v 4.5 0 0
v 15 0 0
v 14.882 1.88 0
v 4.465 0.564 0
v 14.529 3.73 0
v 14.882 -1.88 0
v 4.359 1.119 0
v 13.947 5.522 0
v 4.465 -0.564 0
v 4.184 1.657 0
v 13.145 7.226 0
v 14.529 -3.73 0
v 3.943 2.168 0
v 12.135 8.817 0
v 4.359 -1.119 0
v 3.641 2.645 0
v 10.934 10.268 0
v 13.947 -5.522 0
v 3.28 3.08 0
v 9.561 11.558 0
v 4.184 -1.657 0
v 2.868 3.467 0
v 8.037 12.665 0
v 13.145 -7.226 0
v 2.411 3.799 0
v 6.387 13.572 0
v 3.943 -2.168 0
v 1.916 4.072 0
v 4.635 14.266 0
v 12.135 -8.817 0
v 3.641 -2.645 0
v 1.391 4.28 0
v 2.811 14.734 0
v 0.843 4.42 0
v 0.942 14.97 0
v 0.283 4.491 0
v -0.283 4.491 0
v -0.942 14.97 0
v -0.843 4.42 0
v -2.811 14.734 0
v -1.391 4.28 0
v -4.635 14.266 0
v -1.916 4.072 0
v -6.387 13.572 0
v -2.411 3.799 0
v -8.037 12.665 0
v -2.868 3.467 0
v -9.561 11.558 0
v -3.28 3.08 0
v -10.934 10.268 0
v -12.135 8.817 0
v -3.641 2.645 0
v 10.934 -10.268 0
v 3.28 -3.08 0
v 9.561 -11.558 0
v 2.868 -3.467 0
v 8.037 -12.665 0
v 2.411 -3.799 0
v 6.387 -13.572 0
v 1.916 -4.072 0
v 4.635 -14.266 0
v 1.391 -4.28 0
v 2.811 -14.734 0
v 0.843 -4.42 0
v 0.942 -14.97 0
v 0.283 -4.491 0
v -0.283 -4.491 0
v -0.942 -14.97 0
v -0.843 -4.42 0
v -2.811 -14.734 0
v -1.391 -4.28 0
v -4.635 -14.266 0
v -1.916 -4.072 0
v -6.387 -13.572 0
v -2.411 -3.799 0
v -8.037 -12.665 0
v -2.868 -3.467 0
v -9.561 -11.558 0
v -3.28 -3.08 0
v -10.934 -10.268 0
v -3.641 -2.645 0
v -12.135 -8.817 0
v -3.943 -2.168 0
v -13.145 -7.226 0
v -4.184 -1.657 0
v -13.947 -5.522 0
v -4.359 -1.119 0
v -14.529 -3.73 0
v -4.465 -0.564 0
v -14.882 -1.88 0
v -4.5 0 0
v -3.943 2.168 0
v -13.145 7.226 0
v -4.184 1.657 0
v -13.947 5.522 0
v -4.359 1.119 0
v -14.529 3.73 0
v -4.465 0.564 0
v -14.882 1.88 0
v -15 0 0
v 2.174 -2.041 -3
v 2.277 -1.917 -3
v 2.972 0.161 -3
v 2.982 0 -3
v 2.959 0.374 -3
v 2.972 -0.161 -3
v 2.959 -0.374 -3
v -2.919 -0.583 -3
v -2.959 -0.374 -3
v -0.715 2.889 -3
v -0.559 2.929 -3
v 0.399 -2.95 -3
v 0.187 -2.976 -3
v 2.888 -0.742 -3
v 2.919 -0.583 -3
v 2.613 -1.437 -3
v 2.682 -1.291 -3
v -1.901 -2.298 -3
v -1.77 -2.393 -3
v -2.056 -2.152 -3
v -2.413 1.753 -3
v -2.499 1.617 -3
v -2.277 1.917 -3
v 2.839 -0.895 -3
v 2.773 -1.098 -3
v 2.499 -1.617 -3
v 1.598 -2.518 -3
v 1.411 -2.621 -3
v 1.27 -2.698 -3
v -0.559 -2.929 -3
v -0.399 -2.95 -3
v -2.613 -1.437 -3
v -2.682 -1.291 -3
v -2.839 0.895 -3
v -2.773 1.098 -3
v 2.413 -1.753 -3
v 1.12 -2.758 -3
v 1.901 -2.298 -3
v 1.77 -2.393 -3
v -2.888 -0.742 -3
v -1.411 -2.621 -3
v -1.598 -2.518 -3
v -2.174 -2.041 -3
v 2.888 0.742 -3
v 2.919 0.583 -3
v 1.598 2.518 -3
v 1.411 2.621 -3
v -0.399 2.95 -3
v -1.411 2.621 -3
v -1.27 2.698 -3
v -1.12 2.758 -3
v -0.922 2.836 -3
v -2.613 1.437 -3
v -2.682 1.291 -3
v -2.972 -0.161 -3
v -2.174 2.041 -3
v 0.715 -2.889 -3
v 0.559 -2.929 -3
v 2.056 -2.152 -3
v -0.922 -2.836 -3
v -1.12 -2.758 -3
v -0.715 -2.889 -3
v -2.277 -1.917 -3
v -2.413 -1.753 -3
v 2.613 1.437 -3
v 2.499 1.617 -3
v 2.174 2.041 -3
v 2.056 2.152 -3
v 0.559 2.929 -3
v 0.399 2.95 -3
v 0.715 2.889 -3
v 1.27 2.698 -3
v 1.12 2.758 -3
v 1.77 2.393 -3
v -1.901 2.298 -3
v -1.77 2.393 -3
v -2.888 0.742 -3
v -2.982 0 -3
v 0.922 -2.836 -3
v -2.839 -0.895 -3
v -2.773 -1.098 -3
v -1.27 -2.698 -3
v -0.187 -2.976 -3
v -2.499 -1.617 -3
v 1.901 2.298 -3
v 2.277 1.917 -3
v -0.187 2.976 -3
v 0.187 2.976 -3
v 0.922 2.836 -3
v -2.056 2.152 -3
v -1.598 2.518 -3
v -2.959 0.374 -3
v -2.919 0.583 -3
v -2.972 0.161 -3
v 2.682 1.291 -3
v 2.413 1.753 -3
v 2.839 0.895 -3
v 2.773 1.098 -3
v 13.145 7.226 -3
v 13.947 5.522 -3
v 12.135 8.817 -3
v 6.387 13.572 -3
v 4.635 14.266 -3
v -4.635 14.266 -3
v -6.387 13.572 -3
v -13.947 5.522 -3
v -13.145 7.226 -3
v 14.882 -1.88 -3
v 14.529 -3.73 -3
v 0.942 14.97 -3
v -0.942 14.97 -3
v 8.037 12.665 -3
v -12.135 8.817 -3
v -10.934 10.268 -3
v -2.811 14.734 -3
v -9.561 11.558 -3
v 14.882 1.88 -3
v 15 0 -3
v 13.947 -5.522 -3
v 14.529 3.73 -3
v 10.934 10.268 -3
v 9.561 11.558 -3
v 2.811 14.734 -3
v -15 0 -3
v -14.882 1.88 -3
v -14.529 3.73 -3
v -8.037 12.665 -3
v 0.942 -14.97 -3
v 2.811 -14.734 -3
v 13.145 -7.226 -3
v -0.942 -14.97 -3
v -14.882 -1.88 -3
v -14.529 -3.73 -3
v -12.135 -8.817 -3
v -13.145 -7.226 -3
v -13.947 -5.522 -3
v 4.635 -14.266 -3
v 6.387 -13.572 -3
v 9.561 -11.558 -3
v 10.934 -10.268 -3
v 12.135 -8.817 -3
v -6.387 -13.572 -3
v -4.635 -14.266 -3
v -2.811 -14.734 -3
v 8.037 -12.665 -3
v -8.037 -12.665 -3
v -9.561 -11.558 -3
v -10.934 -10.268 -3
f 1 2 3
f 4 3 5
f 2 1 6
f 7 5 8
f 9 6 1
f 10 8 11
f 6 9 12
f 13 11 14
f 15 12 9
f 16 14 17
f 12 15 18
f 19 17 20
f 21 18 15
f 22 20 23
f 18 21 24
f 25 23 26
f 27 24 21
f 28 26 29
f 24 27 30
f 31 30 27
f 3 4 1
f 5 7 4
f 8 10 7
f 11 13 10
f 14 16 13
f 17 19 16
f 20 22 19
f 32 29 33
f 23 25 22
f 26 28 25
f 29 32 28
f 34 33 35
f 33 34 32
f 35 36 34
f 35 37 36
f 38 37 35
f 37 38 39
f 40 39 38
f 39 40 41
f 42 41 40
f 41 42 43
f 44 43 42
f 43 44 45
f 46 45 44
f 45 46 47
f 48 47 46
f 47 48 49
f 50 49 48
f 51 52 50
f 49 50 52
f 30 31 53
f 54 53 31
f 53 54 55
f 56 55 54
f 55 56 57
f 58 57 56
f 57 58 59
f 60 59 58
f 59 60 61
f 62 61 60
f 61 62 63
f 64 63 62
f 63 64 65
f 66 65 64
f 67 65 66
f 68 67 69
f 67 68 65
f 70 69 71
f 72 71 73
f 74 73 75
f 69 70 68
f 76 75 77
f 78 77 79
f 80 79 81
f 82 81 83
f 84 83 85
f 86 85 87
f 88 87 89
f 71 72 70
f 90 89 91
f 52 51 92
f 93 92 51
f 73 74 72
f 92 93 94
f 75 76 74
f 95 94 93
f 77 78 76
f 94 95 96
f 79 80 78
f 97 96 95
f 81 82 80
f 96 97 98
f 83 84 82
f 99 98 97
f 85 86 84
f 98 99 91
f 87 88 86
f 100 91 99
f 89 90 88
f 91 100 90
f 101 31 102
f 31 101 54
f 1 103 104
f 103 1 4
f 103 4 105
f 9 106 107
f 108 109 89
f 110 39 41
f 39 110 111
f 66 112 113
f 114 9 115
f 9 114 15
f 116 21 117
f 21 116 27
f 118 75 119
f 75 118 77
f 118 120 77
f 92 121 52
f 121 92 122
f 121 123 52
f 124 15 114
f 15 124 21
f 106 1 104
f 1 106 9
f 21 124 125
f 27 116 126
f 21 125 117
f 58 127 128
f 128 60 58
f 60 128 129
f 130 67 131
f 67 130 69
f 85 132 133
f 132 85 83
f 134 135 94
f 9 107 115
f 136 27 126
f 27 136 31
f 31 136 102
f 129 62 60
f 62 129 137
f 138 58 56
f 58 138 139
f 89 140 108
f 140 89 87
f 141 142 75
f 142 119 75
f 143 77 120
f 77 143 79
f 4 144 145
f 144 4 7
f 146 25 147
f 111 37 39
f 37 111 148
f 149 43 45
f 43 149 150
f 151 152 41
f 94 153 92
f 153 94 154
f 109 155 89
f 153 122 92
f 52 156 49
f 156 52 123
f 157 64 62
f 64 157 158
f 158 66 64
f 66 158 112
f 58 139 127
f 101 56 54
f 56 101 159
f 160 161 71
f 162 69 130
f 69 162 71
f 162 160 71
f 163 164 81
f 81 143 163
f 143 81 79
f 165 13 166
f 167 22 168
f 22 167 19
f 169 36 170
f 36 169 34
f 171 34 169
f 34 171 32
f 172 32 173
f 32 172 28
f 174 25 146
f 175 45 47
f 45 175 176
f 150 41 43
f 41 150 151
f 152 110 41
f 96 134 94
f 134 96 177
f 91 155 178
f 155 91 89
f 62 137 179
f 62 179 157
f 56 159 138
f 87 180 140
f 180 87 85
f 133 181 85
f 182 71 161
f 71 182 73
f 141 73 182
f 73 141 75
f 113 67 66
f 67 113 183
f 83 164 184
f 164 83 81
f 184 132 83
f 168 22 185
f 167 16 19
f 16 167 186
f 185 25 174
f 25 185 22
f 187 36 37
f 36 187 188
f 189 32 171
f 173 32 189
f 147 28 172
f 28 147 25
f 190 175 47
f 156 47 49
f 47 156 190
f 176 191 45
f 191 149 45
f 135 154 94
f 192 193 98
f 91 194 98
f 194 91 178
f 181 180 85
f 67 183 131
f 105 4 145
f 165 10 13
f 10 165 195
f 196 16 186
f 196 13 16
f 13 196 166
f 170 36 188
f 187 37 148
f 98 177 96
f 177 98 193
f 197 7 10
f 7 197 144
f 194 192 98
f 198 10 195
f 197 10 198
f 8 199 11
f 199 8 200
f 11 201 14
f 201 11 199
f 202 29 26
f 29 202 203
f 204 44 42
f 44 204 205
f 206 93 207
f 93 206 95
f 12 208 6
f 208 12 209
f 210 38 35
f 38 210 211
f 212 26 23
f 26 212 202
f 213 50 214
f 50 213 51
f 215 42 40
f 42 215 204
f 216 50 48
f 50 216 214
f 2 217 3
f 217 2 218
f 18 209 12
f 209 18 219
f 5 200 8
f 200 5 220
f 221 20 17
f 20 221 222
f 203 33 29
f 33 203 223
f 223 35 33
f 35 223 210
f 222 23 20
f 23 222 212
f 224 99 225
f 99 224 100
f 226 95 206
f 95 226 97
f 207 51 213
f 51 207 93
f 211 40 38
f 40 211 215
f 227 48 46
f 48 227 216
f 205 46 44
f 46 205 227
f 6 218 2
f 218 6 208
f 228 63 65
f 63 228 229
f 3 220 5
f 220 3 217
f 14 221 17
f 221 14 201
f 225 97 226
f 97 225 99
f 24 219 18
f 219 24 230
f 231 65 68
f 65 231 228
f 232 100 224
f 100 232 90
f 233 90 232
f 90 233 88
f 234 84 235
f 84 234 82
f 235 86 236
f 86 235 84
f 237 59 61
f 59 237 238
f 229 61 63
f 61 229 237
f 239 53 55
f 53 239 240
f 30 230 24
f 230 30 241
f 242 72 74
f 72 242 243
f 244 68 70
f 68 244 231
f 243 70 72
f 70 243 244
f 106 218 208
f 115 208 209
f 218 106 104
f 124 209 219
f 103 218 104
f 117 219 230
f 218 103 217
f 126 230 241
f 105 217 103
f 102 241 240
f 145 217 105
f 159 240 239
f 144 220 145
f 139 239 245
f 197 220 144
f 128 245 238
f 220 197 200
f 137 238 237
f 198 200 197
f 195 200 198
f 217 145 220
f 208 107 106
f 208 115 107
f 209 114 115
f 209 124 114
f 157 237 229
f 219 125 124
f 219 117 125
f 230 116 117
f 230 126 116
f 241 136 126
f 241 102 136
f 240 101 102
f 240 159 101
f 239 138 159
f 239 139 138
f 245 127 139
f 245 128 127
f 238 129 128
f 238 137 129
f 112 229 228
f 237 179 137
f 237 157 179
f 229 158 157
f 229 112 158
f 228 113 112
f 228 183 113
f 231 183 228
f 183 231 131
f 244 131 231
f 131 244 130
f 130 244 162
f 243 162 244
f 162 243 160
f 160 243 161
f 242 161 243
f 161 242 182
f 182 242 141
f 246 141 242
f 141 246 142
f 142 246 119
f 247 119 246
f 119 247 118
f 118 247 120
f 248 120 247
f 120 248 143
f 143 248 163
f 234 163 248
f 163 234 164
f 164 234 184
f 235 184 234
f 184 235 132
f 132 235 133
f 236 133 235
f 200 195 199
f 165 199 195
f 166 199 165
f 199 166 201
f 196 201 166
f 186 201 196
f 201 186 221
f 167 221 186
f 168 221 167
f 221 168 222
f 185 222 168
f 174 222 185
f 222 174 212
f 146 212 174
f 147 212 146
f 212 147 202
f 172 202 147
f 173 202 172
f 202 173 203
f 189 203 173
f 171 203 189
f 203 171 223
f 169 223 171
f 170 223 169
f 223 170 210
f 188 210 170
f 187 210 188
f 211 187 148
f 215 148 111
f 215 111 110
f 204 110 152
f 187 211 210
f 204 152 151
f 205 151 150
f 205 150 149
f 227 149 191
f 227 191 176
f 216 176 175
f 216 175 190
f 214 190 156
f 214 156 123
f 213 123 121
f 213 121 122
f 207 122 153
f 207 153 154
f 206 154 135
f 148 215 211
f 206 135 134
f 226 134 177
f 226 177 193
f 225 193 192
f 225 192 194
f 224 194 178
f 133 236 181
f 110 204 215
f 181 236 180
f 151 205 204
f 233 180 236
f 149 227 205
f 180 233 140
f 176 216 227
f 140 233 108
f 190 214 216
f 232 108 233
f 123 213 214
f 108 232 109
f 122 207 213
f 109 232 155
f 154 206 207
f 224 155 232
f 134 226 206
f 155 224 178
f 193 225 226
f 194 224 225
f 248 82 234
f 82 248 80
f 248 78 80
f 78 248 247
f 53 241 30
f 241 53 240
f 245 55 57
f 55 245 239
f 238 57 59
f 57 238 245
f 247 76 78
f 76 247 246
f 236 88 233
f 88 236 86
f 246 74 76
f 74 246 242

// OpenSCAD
$fn = 50;


difference() {
	union() {
		translate(v = [0, 0, -3.0000000000]) {
			cylinder(h = 3, r = 15.0000000000);
		}
	}
	union() {
		translate(v = [0, 0, 0]) {
			rotate(a = [0, 0, 0]) {
				difference() {
					union() {
						translate(v = [0, 0, -3.0000000000]) {
							cylinder(h = 3, r = 2.2500000000);
						}
						translate(v = [0, 0, -4.2000000000]) {
							cylinder(h = 4.2000000000, r1 = 2.3750000000, r2 = 4.5000000000);
						}
						translate(v = [0, 0, -3.0000000000]) {
							cylinder(h = 3, r = 2.3750000000);
						}
						translate(v = [0, 0, -3.0000000000]) {
							cylinder(h = 3, r = 2.2500000000);
						}
					}
					union();
				}
			}
		}
	}
}
